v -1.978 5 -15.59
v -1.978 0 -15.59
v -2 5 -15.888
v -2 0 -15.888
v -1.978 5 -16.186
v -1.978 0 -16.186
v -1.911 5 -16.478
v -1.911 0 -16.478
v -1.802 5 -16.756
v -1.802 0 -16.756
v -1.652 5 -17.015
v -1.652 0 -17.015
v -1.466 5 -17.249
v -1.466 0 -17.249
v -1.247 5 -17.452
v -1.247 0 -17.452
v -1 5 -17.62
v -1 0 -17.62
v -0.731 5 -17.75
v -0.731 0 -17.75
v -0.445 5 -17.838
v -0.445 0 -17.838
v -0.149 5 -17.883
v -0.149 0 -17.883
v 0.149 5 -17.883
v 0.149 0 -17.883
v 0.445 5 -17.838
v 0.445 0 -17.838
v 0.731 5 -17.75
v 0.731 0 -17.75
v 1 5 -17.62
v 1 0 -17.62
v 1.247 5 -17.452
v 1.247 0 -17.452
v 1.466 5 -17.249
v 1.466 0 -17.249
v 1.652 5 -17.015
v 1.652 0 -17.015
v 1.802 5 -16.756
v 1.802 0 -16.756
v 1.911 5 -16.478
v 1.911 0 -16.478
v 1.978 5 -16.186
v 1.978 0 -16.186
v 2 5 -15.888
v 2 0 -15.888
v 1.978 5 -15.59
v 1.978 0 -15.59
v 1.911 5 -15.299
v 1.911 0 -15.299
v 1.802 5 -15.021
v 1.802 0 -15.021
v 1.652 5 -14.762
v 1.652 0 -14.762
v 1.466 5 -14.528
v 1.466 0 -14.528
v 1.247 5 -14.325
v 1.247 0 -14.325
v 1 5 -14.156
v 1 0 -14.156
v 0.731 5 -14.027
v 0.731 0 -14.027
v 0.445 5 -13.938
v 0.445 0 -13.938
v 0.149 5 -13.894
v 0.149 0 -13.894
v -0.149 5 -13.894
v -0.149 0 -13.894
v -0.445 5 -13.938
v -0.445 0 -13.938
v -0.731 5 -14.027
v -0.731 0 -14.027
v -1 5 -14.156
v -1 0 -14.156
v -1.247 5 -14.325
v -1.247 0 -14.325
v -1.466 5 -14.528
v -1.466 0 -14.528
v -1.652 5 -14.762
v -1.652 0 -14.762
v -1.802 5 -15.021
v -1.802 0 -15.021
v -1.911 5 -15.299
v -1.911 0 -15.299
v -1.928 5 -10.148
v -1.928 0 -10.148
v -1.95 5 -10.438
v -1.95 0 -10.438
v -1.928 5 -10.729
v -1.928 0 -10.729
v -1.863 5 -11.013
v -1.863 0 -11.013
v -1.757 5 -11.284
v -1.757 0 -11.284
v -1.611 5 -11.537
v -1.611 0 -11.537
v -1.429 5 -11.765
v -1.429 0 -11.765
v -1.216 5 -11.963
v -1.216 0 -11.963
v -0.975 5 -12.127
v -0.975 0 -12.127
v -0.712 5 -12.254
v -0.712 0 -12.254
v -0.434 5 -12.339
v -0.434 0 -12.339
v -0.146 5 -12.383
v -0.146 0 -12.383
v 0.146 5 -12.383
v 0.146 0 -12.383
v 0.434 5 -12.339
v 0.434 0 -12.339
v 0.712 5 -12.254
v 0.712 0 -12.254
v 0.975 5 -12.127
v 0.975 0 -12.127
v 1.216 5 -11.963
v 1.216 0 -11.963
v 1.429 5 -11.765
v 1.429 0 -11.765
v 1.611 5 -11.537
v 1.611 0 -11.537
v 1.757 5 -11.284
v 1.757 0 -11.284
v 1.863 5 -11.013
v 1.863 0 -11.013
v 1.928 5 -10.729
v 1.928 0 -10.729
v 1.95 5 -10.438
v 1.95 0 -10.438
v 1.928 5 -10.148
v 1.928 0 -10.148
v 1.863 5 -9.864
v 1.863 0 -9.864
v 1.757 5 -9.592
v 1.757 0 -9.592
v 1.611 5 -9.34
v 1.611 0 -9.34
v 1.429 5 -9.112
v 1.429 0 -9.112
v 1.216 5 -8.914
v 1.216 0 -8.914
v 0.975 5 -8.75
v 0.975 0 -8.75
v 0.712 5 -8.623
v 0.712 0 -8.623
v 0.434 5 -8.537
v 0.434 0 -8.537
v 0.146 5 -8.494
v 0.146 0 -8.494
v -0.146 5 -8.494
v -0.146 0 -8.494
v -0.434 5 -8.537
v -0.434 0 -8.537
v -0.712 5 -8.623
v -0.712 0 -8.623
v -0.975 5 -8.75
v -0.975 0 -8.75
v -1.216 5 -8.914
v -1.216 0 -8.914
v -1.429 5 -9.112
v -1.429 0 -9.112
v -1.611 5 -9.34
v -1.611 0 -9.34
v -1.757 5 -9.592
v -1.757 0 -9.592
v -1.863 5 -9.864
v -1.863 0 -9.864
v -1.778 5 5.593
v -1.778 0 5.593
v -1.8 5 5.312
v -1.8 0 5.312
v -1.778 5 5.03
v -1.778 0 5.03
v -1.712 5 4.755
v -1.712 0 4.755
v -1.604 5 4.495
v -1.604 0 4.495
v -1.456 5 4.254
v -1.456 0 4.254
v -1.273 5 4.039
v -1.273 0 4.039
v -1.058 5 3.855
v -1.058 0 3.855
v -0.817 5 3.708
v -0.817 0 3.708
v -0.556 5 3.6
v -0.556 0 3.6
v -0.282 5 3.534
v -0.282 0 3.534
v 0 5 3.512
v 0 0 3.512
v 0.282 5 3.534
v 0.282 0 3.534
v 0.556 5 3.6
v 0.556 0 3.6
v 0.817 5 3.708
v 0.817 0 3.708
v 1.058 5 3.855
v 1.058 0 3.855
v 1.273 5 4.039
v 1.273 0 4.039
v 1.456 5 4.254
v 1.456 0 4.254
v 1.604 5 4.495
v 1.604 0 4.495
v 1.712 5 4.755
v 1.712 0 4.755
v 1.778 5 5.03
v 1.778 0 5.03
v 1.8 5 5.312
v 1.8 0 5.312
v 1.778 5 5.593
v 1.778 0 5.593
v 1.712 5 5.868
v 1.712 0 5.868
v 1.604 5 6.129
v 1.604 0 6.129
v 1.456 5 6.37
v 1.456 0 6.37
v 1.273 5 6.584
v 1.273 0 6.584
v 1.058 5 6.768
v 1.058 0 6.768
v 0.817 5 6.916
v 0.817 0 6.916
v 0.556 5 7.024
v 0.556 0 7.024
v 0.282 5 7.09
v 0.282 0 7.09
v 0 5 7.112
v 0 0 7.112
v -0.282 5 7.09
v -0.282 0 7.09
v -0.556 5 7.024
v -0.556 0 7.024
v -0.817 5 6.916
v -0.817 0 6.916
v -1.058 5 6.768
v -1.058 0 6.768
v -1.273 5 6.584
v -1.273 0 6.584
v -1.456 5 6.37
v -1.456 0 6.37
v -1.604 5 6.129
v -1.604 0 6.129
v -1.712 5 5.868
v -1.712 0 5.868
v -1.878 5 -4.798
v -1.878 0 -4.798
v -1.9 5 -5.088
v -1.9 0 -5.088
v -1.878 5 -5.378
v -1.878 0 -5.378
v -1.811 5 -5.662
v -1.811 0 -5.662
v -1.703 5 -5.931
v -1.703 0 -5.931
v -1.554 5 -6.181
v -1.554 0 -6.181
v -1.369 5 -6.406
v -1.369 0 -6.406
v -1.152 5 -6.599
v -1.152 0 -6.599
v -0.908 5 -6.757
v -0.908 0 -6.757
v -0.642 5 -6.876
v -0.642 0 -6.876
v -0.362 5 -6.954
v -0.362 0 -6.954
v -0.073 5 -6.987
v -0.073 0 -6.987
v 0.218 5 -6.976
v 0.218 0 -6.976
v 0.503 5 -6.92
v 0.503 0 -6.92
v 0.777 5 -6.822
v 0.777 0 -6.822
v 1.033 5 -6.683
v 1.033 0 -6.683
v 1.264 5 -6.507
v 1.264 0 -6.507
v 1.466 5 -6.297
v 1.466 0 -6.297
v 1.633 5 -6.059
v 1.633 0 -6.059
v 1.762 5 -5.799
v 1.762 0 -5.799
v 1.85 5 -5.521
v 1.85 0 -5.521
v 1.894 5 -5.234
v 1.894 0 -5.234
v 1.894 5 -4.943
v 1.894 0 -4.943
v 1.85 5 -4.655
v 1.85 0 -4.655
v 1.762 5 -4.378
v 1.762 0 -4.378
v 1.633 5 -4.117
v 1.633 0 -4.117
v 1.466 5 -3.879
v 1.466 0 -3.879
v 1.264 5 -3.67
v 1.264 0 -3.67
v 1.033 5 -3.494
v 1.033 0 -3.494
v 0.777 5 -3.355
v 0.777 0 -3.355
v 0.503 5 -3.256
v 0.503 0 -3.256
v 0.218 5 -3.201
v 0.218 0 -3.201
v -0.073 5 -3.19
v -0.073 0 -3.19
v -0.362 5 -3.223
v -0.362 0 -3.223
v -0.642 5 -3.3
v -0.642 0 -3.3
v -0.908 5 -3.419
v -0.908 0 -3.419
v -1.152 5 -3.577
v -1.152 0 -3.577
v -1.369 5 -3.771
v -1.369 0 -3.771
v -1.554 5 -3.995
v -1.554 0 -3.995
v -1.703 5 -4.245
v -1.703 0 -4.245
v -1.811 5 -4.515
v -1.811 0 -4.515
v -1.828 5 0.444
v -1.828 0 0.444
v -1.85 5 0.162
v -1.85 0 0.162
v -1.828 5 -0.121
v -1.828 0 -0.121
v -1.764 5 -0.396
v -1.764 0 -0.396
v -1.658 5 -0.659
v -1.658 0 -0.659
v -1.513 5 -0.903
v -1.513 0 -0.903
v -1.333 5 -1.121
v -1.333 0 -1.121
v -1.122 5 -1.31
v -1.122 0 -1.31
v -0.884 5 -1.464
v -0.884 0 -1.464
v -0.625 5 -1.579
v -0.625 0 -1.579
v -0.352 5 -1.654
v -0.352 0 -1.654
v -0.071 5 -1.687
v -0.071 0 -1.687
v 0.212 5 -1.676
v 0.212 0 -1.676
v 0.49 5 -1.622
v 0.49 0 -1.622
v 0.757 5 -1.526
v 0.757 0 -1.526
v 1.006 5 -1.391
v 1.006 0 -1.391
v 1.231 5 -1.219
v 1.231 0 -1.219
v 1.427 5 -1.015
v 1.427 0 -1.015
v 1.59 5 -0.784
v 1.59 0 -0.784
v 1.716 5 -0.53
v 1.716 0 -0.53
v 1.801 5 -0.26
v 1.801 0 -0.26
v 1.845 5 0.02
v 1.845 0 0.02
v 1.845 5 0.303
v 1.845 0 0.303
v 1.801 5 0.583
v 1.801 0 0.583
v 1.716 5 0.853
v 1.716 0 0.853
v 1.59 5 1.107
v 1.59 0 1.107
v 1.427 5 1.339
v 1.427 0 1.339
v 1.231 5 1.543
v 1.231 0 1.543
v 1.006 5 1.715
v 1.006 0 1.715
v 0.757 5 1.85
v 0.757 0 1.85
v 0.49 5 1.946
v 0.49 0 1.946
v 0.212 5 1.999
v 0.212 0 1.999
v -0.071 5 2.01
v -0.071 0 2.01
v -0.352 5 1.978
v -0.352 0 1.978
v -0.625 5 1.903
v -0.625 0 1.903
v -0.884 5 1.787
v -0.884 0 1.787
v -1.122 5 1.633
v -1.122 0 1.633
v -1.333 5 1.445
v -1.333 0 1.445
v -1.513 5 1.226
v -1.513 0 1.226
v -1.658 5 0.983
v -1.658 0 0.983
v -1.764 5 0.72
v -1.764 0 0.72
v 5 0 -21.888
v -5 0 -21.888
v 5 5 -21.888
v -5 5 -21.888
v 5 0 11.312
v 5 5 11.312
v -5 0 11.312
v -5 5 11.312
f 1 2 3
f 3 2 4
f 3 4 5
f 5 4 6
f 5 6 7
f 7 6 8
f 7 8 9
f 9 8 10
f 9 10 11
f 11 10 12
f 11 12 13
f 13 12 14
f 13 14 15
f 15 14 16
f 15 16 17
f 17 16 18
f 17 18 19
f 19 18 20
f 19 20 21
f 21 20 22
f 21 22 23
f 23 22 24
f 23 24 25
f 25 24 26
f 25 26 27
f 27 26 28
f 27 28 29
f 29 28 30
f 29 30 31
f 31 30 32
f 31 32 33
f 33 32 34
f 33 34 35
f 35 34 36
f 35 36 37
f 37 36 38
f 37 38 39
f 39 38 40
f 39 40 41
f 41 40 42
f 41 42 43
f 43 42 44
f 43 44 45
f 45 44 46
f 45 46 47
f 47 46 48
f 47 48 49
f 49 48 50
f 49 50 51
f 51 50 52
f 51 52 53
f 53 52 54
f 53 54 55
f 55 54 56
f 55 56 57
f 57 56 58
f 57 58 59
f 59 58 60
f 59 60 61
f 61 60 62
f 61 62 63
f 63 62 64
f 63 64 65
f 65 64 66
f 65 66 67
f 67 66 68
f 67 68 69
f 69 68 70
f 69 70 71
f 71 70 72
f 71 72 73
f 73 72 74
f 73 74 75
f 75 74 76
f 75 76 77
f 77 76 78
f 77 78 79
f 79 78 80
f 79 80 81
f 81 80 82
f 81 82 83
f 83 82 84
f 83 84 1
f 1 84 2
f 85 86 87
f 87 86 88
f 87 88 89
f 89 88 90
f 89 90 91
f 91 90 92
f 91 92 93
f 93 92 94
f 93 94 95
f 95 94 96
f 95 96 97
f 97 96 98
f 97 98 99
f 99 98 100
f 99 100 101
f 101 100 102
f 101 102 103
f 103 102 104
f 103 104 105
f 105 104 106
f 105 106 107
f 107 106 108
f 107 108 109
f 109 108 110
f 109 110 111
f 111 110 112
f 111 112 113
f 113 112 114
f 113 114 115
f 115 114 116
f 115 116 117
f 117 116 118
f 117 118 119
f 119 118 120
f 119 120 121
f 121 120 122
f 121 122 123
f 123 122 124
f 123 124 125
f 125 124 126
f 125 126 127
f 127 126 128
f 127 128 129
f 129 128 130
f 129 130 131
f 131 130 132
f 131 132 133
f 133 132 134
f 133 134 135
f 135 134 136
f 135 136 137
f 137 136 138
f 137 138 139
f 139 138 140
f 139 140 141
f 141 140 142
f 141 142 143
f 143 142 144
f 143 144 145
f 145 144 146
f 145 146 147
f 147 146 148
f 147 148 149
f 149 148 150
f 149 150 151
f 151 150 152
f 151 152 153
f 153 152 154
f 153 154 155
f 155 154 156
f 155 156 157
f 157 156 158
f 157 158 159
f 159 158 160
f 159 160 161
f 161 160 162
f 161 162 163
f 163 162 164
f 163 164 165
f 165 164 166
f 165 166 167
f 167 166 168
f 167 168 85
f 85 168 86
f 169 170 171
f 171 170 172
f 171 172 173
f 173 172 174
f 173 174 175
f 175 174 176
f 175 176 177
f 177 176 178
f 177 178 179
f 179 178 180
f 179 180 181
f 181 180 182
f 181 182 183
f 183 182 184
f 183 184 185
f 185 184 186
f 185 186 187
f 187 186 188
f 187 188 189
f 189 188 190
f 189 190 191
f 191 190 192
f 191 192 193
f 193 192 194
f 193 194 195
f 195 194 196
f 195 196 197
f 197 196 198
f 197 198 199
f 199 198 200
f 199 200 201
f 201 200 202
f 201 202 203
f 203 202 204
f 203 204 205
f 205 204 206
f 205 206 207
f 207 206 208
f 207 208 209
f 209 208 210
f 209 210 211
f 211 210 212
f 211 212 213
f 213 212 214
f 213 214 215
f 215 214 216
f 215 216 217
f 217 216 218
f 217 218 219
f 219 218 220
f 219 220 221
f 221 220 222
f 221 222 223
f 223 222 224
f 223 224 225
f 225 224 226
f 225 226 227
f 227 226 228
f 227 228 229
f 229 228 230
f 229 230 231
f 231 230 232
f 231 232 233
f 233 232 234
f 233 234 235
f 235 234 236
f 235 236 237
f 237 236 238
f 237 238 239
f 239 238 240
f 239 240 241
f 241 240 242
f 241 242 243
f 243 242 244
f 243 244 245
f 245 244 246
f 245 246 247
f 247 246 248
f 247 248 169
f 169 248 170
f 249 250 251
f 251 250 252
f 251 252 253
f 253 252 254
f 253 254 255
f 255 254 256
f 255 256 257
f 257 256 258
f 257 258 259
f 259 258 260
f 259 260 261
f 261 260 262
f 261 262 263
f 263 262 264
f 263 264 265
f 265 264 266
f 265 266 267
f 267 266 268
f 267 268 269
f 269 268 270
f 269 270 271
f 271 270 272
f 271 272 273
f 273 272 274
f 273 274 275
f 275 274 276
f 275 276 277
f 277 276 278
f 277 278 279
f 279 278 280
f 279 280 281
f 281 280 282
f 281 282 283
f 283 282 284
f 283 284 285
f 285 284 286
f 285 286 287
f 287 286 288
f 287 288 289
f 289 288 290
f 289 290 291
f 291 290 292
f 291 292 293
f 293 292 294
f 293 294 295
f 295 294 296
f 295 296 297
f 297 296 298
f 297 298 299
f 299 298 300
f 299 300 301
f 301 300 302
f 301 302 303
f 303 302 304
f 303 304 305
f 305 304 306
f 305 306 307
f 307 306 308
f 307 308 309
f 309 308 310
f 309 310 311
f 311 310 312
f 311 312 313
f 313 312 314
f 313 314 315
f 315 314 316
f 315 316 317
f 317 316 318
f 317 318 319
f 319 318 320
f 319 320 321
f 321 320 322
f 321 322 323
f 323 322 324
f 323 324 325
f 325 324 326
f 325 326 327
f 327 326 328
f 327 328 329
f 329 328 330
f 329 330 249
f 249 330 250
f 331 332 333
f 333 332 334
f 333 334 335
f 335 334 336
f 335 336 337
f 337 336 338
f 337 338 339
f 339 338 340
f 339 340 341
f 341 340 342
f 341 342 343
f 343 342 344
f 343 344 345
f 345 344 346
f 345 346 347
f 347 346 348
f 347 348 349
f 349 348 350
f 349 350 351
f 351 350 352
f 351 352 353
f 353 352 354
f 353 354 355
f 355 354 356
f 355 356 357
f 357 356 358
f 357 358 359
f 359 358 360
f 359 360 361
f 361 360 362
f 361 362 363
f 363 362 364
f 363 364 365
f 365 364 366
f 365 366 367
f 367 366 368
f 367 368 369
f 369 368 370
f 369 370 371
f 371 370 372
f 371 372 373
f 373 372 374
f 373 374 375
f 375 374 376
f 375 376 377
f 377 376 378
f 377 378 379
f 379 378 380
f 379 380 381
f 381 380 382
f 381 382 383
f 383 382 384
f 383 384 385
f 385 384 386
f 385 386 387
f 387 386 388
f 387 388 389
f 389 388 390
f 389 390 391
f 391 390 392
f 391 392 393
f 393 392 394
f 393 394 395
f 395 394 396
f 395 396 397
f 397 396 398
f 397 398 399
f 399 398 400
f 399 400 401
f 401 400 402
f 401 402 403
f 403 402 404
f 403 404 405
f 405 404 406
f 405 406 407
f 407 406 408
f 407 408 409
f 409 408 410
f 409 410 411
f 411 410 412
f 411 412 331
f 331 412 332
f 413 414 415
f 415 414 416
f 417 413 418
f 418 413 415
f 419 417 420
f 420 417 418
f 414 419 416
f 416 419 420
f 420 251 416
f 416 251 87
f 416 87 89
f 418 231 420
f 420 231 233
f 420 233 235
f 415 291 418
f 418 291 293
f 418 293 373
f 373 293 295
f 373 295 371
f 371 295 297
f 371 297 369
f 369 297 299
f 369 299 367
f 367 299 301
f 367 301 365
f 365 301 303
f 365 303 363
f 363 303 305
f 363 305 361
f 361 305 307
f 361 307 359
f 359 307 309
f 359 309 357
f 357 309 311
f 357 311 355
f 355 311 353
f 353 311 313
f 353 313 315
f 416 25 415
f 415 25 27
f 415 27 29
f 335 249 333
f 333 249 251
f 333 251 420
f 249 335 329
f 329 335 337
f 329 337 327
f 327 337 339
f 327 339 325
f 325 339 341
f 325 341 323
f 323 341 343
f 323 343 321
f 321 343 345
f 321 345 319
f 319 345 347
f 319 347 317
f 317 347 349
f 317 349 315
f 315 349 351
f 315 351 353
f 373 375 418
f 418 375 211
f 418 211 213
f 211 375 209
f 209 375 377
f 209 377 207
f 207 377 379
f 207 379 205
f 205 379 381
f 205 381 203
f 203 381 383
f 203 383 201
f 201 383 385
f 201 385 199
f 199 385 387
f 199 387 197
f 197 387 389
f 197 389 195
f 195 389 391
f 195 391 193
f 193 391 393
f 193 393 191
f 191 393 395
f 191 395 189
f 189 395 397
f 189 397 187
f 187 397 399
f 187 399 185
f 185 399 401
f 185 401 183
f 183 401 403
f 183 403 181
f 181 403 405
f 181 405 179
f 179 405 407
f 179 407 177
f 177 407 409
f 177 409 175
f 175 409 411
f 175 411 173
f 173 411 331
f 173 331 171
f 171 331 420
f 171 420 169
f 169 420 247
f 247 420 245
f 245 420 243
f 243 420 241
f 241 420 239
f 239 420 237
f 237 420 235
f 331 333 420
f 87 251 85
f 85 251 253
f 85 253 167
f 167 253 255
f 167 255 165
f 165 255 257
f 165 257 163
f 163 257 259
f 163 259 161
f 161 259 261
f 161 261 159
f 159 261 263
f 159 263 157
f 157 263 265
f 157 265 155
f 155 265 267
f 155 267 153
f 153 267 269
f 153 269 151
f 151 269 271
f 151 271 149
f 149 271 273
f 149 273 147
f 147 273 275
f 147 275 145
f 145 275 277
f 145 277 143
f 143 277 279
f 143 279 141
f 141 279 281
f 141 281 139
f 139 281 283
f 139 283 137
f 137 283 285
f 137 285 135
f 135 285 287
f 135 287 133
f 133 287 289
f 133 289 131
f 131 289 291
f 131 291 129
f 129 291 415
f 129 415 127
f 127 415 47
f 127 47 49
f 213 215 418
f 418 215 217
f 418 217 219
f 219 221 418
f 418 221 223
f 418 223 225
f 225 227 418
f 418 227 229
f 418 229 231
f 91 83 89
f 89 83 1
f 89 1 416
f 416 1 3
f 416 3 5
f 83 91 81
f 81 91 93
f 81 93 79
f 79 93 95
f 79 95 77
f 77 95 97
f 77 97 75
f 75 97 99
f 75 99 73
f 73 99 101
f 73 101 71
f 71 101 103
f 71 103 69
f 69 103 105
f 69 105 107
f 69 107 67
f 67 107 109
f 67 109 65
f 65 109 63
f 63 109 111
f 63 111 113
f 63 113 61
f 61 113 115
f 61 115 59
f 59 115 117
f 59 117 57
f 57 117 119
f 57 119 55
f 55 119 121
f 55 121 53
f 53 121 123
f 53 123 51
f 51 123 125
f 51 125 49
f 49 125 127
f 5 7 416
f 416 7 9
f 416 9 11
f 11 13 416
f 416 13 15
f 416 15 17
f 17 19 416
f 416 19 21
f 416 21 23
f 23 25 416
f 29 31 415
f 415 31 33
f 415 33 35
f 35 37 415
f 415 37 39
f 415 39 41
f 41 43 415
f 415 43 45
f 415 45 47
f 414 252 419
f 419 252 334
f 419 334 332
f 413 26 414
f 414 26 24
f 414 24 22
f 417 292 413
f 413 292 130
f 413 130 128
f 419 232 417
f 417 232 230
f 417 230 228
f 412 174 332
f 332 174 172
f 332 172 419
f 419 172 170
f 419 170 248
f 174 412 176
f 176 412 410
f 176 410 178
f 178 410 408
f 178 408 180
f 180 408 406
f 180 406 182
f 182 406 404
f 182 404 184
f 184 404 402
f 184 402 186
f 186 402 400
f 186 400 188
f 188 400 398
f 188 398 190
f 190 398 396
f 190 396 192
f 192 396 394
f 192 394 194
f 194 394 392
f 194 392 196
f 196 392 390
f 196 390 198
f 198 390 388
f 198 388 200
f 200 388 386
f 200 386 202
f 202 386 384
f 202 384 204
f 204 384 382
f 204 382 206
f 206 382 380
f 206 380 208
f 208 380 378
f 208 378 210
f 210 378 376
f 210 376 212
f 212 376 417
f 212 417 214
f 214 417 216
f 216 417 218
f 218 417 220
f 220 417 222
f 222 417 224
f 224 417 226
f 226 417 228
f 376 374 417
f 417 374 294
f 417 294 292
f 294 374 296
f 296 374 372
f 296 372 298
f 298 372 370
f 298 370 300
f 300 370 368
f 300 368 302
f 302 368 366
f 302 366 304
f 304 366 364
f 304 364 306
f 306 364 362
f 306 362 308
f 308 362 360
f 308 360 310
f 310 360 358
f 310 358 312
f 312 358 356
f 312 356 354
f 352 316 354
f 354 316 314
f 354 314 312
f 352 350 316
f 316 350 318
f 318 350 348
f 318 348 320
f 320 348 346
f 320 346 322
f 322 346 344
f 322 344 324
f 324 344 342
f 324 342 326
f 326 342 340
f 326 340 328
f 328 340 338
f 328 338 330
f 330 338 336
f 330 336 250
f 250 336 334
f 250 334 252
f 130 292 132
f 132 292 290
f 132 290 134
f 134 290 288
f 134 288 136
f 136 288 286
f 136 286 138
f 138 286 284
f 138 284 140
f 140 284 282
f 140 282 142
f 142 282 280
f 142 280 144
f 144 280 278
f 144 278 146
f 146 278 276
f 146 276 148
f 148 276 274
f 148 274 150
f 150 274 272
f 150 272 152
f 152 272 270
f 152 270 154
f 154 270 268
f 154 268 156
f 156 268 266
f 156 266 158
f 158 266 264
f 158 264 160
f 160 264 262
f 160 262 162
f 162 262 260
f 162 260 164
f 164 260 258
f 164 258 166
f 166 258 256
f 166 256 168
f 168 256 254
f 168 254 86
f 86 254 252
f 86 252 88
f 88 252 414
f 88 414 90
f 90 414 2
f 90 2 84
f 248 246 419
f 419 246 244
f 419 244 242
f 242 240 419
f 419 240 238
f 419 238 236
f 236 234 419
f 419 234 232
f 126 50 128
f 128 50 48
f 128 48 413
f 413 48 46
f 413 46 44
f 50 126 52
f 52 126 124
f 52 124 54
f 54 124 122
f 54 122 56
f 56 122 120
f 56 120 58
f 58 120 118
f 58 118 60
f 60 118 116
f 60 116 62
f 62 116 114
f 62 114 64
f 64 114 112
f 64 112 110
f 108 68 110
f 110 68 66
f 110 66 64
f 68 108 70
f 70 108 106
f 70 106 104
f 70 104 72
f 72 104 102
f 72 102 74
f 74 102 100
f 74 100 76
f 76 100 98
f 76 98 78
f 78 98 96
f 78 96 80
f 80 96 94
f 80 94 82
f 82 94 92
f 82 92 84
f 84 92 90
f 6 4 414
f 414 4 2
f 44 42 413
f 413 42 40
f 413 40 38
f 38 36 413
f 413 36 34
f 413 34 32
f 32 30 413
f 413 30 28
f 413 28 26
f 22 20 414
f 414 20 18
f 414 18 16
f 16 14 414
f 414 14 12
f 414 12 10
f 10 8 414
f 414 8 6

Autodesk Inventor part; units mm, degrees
ref_plane "YZ Plane" through (0, 0, 0) normal (1, 0, 0) x (0, 1, 0)
ref_plane "XZ Plane" through (0, 0, 0) normal (0, 1, 0) x (-1, 0, 0)
ref_plane "XY Plane" through (0, 0, 0) normal (0, 0, 1) x (1, 0, 0)
sketch "Sketch1" plane through (0, 0, 0) normal (0, 1, 0) x (-1, 0, 0)
  line L0 (-5, -21.8883) -> (5, -21.8883)
  line L1 (5, -21.8883) -> (5, 11.3117)
  line L2 (5, 11.3117) -> (-5, 11.3117)
  line L3 (-5, 11.3117) -> (-5, -21.8883)
  circle A0 centre (0, 0.1617) radius 1.85
  circle A1 centre (0, -5.0883) radius 1.9
  line L4 (0, 11.3117) -> (0, -21.8883) construction
  circle A2 centre (0, 5.3117) radius 1.8
  circle A3 centre (0, -10.4383) radius 1.95
  circle A4 centre (0, -15.8883) radius 2
  dimension "d1" = 10
  dimension "d2" = 3.7
  dimension "d3" = 3.8
  dimension "d4" = 1.5
  dimension "d5" = 3.6
  dimension "d6" = 1.5
  dimension "d8" = 3.9
  dimension "d9" = 1.5
  dimension "d10" = 4
  dimension "d11" = 1.5
  dimension "d12" = 6
  dimension "d13" = 6
extrude "Extrusion1" add sketch "Sketch1" along normal blind 5
properties part number "Test Block for Inserts"
